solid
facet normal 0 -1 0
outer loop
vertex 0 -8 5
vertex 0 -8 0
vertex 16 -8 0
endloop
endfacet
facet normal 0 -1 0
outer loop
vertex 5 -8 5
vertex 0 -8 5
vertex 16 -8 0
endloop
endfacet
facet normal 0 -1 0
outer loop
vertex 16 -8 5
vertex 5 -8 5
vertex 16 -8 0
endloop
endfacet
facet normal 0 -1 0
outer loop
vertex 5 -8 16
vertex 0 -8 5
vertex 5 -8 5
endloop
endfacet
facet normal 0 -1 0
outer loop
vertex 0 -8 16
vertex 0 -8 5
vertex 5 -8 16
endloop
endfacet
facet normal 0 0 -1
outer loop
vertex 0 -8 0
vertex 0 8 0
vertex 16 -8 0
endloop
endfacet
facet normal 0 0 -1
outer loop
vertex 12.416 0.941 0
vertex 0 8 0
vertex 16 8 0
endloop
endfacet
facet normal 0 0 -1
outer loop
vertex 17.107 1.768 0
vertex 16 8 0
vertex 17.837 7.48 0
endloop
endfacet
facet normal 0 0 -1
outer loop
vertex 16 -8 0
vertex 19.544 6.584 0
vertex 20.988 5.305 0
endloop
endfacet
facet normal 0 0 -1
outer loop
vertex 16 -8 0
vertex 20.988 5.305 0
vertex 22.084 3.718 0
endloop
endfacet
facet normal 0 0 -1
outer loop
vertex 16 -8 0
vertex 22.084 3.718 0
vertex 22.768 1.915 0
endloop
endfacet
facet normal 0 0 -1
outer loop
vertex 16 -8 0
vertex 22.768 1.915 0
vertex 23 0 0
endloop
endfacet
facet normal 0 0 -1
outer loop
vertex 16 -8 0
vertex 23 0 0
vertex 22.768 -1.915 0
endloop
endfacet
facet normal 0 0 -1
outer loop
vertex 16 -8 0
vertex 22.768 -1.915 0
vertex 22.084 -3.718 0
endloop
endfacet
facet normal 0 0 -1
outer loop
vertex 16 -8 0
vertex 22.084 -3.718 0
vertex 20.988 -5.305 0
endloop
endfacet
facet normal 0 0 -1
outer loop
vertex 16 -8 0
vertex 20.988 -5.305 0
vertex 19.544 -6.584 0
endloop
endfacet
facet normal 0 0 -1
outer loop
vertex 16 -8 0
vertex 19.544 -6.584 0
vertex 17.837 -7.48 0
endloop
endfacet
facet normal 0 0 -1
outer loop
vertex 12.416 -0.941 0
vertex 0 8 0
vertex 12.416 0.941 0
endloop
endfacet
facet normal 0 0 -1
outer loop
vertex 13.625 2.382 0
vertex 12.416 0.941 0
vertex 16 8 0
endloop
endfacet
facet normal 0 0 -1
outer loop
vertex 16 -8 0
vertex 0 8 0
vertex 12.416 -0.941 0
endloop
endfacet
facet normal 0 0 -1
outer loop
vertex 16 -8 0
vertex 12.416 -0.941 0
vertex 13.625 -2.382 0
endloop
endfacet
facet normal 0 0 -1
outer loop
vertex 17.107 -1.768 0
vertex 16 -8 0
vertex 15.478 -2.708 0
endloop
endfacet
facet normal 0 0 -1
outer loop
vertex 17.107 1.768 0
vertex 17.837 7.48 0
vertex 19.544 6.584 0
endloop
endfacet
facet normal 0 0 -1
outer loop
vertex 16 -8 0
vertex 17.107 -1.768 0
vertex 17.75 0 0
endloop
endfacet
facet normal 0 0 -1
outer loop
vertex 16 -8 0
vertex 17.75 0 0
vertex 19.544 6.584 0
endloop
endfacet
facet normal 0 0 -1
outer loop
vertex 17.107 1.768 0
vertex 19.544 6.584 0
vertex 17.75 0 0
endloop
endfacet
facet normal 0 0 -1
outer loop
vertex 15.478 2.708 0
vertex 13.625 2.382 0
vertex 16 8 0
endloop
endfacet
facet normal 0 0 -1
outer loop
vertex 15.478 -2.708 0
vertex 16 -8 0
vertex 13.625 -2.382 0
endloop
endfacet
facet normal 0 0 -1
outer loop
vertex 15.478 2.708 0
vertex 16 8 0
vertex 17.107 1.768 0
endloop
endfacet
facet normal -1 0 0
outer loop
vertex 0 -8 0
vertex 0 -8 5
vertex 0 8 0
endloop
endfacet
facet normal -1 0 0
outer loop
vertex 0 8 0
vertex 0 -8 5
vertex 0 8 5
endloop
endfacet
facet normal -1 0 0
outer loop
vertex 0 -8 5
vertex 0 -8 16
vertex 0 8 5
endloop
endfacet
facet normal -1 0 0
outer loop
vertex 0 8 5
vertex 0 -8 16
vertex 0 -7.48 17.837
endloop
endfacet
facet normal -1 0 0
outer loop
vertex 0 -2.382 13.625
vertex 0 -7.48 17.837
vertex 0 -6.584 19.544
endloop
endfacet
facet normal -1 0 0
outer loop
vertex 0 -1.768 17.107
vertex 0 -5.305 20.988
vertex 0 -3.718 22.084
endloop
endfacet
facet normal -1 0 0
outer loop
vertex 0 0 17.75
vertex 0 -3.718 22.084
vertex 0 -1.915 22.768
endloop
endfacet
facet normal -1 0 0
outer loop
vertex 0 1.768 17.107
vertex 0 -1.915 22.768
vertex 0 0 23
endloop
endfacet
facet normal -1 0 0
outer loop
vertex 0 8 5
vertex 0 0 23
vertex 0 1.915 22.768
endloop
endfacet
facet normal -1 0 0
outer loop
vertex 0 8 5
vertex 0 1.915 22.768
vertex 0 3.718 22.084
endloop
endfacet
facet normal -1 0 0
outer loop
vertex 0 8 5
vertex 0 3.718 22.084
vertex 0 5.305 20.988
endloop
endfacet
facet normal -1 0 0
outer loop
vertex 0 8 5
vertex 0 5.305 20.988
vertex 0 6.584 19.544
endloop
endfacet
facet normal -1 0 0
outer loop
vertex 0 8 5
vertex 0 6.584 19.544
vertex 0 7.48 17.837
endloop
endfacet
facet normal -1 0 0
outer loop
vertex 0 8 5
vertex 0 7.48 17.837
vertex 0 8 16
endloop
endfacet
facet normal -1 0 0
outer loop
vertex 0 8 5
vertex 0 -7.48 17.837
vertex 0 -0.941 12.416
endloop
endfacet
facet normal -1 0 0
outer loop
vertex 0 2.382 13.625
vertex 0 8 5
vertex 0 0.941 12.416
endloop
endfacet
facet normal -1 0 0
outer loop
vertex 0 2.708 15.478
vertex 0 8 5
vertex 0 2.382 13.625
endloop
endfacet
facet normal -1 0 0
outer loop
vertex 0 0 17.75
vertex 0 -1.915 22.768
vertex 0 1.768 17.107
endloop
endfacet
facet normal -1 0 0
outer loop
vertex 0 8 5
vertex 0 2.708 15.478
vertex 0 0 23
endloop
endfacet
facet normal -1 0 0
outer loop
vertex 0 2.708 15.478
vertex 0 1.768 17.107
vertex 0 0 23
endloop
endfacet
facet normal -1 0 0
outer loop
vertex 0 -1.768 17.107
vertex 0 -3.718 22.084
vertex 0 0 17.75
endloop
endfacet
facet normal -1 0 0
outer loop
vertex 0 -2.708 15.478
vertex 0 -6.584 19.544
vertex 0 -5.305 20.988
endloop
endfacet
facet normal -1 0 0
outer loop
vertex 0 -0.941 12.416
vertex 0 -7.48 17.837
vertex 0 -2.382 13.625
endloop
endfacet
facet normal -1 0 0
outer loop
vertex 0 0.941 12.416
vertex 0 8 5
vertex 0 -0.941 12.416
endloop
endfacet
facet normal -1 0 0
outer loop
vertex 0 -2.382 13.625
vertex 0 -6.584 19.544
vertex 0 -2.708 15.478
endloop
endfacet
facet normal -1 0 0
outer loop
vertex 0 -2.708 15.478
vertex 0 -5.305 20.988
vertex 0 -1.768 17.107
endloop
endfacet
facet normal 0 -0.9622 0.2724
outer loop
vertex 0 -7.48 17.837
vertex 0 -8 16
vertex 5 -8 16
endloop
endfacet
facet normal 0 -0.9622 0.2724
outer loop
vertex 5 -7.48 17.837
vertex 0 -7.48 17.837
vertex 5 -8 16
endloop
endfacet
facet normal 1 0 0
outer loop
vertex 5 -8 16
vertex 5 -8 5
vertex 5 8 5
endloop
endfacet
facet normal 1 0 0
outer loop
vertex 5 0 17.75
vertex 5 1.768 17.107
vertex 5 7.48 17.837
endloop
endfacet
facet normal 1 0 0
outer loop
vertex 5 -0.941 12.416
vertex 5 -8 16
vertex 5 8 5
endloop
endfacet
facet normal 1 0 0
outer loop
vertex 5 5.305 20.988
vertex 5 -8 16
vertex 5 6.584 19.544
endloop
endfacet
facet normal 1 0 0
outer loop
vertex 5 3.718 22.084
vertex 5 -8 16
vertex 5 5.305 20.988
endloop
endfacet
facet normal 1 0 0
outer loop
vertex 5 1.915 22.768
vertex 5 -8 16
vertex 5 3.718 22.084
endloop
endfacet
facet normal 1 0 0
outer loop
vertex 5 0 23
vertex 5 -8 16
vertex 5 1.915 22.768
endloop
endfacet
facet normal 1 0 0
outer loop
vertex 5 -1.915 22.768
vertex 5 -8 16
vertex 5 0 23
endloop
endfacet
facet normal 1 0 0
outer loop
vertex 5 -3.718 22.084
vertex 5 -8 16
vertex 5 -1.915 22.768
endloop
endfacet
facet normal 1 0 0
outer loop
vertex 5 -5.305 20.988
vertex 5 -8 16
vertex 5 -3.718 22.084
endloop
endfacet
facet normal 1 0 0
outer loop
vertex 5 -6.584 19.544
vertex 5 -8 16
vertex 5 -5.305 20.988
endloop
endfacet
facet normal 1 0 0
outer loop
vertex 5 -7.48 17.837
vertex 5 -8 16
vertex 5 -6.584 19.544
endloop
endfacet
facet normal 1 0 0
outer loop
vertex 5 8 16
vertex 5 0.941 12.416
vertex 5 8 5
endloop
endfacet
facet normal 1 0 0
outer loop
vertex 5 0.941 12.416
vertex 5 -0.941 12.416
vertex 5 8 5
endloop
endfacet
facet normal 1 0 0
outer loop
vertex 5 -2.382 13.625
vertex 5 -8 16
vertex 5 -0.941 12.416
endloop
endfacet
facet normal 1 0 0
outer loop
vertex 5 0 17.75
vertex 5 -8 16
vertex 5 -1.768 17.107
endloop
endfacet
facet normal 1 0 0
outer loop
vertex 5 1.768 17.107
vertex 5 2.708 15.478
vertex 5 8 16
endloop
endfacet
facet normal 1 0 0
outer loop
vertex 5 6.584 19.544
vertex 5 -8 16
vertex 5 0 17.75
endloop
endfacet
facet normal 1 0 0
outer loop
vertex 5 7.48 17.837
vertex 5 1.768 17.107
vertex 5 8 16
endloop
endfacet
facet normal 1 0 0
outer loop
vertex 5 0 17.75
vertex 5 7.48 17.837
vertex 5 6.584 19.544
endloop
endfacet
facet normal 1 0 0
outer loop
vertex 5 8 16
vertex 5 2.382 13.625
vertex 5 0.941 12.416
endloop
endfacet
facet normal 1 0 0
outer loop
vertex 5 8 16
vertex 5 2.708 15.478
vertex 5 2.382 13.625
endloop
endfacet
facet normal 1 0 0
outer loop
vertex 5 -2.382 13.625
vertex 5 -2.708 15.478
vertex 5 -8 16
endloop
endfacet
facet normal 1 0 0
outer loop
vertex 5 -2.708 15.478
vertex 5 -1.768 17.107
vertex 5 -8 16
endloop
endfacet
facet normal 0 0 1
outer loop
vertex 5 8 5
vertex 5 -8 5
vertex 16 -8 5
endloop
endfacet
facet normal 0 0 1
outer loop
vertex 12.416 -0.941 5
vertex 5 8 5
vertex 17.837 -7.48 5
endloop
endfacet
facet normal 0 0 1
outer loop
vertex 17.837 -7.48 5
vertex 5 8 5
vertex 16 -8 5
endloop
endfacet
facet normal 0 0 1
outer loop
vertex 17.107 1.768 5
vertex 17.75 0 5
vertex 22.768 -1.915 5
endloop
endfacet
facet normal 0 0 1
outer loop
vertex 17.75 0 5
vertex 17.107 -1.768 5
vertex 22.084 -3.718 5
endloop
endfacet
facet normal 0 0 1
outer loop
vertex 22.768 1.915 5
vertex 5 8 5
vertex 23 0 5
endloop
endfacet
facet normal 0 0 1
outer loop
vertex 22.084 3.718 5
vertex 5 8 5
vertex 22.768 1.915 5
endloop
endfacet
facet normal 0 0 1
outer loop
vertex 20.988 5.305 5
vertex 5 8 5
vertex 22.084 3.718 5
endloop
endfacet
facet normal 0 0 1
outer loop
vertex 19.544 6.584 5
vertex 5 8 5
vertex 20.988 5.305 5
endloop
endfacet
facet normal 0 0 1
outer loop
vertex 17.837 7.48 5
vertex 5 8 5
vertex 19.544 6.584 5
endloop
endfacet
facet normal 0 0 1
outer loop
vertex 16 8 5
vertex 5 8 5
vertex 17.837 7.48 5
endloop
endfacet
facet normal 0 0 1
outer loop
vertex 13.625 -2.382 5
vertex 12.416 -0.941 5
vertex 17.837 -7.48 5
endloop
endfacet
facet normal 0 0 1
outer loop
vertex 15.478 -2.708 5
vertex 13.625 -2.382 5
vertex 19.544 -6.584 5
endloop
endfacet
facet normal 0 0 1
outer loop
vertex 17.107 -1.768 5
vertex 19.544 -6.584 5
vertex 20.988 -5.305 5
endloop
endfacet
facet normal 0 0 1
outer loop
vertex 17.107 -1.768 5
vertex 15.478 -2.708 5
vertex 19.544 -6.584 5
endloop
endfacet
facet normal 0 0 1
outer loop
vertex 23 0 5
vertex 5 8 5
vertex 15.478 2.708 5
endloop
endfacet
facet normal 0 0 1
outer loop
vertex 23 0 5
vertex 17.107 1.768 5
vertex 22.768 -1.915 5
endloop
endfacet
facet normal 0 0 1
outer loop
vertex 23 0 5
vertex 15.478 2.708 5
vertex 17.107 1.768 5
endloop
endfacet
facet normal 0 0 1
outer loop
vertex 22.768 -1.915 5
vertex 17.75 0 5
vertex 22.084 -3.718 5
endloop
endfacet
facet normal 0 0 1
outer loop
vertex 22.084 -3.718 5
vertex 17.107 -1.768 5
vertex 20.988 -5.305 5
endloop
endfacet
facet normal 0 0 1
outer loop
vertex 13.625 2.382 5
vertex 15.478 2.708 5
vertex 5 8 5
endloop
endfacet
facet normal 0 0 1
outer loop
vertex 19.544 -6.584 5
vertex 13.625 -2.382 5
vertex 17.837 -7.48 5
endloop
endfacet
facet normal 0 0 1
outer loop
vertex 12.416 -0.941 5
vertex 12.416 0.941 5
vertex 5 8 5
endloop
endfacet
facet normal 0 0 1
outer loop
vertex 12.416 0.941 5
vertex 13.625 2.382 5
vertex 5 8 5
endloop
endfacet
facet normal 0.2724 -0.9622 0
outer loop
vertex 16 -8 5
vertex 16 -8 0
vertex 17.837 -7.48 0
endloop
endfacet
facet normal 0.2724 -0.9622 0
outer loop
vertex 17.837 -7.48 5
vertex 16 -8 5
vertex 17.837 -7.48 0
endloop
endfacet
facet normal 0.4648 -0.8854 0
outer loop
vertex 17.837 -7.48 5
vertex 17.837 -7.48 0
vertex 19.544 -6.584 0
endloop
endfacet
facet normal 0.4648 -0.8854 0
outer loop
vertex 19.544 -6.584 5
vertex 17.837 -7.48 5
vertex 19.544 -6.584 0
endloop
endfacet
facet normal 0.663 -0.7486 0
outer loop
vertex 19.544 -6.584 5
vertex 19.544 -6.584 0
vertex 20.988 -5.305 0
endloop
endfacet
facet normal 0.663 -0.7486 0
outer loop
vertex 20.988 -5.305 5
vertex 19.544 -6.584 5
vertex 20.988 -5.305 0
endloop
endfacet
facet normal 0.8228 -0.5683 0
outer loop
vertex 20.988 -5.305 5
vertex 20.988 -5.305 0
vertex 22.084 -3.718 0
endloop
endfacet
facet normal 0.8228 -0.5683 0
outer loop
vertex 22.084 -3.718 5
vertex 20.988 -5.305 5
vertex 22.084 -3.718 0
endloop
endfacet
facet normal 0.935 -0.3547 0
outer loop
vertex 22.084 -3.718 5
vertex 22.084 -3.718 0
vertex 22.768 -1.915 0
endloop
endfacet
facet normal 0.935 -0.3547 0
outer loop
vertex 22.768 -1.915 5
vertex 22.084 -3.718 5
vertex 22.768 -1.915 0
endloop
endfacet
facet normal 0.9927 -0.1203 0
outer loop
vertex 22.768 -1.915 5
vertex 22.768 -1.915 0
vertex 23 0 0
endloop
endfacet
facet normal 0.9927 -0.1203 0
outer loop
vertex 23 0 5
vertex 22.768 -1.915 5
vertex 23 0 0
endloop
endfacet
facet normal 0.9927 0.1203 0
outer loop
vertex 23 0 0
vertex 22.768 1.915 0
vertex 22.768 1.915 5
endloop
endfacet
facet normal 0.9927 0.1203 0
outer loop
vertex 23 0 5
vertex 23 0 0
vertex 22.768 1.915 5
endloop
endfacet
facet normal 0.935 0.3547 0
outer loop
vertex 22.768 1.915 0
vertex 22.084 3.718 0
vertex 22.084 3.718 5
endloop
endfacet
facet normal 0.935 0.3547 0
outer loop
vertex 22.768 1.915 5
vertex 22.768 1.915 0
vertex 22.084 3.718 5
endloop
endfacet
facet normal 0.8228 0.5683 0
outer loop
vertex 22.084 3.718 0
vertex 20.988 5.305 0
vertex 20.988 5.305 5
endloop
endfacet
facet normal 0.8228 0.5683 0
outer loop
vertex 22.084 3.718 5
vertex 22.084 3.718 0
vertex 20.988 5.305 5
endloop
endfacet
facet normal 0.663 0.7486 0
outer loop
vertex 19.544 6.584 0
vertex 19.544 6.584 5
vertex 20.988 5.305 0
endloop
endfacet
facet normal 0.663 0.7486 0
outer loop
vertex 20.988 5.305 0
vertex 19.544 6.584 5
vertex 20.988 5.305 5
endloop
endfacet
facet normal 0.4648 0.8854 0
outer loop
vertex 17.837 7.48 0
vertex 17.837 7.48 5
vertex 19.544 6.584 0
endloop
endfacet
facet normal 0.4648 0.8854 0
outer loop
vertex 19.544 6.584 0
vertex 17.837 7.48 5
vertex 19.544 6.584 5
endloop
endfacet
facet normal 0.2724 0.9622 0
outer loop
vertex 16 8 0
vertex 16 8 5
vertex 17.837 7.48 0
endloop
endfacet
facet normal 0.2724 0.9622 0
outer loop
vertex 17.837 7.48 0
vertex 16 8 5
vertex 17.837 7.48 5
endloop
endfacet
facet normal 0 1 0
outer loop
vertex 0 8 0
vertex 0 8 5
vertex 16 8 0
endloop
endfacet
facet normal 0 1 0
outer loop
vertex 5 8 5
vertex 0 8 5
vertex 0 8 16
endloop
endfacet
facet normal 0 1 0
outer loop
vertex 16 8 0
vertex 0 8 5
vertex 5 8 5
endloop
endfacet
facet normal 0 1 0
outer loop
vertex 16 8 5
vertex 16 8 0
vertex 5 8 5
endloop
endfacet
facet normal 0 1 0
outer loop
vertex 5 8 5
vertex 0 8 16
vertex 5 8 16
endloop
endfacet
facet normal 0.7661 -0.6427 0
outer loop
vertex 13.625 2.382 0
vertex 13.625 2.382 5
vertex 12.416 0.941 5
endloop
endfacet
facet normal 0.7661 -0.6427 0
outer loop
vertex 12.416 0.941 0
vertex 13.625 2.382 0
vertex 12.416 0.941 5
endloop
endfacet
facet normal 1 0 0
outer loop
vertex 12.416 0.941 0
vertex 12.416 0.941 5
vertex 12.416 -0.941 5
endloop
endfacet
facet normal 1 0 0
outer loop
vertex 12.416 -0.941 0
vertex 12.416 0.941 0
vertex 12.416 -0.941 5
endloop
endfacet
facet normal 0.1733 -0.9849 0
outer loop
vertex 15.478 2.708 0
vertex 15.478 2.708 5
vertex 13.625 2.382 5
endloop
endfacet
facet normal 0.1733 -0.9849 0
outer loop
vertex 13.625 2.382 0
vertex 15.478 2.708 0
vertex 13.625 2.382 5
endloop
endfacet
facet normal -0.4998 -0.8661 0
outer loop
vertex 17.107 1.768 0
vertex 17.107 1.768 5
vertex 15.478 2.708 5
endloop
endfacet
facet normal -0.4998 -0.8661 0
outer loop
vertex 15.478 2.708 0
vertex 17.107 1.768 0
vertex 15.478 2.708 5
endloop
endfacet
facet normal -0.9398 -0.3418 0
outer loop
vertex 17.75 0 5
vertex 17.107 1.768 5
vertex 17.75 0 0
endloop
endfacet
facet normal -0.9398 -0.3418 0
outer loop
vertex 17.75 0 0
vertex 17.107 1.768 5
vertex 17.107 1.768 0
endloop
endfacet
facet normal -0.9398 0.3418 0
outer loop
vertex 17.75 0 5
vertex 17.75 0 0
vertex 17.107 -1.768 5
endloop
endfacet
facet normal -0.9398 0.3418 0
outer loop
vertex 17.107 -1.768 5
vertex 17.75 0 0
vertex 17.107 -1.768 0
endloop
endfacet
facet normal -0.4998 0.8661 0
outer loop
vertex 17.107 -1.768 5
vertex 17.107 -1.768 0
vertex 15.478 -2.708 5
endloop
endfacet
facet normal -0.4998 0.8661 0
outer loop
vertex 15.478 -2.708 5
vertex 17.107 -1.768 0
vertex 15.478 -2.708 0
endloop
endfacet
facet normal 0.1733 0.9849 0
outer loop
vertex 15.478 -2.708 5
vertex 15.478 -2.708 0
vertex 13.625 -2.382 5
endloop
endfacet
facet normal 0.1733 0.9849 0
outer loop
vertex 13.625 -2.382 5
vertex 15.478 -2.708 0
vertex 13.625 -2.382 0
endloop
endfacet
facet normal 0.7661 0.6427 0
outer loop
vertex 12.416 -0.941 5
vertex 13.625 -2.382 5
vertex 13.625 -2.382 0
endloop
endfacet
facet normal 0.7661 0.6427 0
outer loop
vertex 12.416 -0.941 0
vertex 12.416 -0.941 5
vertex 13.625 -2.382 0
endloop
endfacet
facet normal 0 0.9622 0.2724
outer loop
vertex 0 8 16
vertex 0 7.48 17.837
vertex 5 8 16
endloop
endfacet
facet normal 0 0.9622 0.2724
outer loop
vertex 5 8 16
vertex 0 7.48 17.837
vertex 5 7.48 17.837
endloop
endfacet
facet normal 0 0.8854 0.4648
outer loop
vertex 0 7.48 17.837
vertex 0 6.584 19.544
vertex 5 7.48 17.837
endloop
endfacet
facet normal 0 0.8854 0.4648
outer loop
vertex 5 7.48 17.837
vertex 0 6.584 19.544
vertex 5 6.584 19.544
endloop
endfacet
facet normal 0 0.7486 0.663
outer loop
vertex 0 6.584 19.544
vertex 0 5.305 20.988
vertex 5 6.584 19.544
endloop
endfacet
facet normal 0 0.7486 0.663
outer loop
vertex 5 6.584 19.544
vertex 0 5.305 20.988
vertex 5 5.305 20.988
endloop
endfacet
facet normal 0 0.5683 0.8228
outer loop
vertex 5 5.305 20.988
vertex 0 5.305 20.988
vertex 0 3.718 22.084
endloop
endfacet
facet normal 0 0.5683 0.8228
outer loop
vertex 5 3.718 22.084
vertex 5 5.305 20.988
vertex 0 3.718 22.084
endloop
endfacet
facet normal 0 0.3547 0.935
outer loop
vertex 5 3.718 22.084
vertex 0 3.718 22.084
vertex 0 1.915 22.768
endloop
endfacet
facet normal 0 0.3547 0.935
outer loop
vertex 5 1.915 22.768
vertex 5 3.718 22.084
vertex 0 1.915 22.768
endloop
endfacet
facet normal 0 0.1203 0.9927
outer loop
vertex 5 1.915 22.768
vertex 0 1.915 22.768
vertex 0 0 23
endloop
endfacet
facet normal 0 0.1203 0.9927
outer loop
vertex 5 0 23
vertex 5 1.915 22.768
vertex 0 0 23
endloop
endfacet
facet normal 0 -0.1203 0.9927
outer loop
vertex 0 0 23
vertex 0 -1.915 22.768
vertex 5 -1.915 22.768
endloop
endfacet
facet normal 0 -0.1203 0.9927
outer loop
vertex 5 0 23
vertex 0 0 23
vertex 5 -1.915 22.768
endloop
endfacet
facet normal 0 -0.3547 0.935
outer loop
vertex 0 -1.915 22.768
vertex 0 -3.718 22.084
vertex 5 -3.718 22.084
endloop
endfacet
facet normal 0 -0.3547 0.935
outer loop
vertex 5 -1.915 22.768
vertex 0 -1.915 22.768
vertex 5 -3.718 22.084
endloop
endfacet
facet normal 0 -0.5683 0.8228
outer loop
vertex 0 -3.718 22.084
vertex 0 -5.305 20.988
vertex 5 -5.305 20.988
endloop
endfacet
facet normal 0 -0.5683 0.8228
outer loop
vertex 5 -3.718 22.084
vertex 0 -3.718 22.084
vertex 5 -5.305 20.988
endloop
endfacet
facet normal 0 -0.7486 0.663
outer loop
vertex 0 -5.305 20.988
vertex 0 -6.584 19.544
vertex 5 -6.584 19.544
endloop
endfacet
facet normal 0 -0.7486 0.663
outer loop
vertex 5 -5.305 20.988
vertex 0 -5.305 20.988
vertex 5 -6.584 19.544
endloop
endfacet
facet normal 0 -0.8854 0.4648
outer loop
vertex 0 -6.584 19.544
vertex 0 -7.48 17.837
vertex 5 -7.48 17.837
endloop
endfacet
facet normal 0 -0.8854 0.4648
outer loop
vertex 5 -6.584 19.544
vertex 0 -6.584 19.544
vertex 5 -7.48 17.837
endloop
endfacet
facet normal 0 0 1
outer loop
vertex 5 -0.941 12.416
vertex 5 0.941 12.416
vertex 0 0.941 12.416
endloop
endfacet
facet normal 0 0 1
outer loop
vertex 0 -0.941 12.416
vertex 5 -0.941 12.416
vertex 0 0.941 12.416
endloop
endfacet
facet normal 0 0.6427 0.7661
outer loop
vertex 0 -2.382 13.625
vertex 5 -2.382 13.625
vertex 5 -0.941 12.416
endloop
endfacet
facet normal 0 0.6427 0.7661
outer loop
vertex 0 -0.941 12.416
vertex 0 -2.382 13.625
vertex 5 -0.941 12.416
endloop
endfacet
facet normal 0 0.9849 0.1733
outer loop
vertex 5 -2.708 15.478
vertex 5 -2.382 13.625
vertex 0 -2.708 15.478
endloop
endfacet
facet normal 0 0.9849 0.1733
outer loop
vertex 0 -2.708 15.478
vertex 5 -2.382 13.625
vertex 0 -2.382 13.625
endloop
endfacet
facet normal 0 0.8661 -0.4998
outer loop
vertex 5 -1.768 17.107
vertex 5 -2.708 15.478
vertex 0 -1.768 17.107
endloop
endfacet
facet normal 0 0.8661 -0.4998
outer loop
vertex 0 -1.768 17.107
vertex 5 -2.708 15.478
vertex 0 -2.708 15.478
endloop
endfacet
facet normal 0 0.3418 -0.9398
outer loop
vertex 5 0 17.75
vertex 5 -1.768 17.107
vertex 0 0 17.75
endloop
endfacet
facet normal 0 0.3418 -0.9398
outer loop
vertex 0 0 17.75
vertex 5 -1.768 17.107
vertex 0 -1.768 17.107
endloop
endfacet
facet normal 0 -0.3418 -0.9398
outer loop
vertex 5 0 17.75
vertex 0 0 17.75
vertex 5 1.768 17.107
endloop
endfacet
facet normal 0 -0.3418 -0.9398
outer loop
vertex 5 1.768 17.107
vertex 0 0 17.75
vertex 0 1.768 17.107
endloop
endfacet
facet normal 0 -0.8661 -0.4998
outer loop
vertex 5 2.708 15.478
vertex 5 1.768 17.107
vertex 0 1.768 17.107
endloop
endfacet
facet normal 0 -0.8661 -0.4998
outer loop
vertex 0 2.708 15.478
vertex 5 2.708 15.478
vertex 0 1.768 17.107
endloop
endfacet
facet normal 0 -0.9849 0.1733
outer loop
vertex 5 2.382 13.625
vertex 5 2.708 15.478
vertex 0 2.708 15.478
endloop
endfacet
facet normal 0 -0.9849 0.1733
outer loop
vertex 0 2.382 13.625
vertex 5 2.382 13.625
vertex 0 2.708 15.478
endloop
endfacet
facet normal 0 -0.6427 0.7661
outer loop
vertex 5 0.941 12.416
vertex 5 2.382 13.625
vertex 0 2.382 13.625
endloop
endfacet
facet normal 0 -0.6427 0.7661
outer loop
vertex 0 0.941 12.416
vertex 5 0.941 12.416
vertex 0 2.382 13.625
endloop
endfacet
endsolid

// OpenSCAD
// L-shaped mounting plate
mount_hole_dia = 5.5;
mount_plate_dia = 16;

module part() {
difference() {
	hull() {
		translate([mount_plate_dia/2, 0, 2.5])
      		cube([mount_plate_dia, mount_plate_dia, 5], center=true);
		translate([15, 0, 0])
	  		cylinder(r=mount_plate_dia/2,h=5);
	}

	translate([15, 0, -1])
	  cylinder(r=mount_hole_dia/2,h=7);
}

}



part();

translate([5, 0, 0])
	rotate([0, -90, 0])
  		part();
